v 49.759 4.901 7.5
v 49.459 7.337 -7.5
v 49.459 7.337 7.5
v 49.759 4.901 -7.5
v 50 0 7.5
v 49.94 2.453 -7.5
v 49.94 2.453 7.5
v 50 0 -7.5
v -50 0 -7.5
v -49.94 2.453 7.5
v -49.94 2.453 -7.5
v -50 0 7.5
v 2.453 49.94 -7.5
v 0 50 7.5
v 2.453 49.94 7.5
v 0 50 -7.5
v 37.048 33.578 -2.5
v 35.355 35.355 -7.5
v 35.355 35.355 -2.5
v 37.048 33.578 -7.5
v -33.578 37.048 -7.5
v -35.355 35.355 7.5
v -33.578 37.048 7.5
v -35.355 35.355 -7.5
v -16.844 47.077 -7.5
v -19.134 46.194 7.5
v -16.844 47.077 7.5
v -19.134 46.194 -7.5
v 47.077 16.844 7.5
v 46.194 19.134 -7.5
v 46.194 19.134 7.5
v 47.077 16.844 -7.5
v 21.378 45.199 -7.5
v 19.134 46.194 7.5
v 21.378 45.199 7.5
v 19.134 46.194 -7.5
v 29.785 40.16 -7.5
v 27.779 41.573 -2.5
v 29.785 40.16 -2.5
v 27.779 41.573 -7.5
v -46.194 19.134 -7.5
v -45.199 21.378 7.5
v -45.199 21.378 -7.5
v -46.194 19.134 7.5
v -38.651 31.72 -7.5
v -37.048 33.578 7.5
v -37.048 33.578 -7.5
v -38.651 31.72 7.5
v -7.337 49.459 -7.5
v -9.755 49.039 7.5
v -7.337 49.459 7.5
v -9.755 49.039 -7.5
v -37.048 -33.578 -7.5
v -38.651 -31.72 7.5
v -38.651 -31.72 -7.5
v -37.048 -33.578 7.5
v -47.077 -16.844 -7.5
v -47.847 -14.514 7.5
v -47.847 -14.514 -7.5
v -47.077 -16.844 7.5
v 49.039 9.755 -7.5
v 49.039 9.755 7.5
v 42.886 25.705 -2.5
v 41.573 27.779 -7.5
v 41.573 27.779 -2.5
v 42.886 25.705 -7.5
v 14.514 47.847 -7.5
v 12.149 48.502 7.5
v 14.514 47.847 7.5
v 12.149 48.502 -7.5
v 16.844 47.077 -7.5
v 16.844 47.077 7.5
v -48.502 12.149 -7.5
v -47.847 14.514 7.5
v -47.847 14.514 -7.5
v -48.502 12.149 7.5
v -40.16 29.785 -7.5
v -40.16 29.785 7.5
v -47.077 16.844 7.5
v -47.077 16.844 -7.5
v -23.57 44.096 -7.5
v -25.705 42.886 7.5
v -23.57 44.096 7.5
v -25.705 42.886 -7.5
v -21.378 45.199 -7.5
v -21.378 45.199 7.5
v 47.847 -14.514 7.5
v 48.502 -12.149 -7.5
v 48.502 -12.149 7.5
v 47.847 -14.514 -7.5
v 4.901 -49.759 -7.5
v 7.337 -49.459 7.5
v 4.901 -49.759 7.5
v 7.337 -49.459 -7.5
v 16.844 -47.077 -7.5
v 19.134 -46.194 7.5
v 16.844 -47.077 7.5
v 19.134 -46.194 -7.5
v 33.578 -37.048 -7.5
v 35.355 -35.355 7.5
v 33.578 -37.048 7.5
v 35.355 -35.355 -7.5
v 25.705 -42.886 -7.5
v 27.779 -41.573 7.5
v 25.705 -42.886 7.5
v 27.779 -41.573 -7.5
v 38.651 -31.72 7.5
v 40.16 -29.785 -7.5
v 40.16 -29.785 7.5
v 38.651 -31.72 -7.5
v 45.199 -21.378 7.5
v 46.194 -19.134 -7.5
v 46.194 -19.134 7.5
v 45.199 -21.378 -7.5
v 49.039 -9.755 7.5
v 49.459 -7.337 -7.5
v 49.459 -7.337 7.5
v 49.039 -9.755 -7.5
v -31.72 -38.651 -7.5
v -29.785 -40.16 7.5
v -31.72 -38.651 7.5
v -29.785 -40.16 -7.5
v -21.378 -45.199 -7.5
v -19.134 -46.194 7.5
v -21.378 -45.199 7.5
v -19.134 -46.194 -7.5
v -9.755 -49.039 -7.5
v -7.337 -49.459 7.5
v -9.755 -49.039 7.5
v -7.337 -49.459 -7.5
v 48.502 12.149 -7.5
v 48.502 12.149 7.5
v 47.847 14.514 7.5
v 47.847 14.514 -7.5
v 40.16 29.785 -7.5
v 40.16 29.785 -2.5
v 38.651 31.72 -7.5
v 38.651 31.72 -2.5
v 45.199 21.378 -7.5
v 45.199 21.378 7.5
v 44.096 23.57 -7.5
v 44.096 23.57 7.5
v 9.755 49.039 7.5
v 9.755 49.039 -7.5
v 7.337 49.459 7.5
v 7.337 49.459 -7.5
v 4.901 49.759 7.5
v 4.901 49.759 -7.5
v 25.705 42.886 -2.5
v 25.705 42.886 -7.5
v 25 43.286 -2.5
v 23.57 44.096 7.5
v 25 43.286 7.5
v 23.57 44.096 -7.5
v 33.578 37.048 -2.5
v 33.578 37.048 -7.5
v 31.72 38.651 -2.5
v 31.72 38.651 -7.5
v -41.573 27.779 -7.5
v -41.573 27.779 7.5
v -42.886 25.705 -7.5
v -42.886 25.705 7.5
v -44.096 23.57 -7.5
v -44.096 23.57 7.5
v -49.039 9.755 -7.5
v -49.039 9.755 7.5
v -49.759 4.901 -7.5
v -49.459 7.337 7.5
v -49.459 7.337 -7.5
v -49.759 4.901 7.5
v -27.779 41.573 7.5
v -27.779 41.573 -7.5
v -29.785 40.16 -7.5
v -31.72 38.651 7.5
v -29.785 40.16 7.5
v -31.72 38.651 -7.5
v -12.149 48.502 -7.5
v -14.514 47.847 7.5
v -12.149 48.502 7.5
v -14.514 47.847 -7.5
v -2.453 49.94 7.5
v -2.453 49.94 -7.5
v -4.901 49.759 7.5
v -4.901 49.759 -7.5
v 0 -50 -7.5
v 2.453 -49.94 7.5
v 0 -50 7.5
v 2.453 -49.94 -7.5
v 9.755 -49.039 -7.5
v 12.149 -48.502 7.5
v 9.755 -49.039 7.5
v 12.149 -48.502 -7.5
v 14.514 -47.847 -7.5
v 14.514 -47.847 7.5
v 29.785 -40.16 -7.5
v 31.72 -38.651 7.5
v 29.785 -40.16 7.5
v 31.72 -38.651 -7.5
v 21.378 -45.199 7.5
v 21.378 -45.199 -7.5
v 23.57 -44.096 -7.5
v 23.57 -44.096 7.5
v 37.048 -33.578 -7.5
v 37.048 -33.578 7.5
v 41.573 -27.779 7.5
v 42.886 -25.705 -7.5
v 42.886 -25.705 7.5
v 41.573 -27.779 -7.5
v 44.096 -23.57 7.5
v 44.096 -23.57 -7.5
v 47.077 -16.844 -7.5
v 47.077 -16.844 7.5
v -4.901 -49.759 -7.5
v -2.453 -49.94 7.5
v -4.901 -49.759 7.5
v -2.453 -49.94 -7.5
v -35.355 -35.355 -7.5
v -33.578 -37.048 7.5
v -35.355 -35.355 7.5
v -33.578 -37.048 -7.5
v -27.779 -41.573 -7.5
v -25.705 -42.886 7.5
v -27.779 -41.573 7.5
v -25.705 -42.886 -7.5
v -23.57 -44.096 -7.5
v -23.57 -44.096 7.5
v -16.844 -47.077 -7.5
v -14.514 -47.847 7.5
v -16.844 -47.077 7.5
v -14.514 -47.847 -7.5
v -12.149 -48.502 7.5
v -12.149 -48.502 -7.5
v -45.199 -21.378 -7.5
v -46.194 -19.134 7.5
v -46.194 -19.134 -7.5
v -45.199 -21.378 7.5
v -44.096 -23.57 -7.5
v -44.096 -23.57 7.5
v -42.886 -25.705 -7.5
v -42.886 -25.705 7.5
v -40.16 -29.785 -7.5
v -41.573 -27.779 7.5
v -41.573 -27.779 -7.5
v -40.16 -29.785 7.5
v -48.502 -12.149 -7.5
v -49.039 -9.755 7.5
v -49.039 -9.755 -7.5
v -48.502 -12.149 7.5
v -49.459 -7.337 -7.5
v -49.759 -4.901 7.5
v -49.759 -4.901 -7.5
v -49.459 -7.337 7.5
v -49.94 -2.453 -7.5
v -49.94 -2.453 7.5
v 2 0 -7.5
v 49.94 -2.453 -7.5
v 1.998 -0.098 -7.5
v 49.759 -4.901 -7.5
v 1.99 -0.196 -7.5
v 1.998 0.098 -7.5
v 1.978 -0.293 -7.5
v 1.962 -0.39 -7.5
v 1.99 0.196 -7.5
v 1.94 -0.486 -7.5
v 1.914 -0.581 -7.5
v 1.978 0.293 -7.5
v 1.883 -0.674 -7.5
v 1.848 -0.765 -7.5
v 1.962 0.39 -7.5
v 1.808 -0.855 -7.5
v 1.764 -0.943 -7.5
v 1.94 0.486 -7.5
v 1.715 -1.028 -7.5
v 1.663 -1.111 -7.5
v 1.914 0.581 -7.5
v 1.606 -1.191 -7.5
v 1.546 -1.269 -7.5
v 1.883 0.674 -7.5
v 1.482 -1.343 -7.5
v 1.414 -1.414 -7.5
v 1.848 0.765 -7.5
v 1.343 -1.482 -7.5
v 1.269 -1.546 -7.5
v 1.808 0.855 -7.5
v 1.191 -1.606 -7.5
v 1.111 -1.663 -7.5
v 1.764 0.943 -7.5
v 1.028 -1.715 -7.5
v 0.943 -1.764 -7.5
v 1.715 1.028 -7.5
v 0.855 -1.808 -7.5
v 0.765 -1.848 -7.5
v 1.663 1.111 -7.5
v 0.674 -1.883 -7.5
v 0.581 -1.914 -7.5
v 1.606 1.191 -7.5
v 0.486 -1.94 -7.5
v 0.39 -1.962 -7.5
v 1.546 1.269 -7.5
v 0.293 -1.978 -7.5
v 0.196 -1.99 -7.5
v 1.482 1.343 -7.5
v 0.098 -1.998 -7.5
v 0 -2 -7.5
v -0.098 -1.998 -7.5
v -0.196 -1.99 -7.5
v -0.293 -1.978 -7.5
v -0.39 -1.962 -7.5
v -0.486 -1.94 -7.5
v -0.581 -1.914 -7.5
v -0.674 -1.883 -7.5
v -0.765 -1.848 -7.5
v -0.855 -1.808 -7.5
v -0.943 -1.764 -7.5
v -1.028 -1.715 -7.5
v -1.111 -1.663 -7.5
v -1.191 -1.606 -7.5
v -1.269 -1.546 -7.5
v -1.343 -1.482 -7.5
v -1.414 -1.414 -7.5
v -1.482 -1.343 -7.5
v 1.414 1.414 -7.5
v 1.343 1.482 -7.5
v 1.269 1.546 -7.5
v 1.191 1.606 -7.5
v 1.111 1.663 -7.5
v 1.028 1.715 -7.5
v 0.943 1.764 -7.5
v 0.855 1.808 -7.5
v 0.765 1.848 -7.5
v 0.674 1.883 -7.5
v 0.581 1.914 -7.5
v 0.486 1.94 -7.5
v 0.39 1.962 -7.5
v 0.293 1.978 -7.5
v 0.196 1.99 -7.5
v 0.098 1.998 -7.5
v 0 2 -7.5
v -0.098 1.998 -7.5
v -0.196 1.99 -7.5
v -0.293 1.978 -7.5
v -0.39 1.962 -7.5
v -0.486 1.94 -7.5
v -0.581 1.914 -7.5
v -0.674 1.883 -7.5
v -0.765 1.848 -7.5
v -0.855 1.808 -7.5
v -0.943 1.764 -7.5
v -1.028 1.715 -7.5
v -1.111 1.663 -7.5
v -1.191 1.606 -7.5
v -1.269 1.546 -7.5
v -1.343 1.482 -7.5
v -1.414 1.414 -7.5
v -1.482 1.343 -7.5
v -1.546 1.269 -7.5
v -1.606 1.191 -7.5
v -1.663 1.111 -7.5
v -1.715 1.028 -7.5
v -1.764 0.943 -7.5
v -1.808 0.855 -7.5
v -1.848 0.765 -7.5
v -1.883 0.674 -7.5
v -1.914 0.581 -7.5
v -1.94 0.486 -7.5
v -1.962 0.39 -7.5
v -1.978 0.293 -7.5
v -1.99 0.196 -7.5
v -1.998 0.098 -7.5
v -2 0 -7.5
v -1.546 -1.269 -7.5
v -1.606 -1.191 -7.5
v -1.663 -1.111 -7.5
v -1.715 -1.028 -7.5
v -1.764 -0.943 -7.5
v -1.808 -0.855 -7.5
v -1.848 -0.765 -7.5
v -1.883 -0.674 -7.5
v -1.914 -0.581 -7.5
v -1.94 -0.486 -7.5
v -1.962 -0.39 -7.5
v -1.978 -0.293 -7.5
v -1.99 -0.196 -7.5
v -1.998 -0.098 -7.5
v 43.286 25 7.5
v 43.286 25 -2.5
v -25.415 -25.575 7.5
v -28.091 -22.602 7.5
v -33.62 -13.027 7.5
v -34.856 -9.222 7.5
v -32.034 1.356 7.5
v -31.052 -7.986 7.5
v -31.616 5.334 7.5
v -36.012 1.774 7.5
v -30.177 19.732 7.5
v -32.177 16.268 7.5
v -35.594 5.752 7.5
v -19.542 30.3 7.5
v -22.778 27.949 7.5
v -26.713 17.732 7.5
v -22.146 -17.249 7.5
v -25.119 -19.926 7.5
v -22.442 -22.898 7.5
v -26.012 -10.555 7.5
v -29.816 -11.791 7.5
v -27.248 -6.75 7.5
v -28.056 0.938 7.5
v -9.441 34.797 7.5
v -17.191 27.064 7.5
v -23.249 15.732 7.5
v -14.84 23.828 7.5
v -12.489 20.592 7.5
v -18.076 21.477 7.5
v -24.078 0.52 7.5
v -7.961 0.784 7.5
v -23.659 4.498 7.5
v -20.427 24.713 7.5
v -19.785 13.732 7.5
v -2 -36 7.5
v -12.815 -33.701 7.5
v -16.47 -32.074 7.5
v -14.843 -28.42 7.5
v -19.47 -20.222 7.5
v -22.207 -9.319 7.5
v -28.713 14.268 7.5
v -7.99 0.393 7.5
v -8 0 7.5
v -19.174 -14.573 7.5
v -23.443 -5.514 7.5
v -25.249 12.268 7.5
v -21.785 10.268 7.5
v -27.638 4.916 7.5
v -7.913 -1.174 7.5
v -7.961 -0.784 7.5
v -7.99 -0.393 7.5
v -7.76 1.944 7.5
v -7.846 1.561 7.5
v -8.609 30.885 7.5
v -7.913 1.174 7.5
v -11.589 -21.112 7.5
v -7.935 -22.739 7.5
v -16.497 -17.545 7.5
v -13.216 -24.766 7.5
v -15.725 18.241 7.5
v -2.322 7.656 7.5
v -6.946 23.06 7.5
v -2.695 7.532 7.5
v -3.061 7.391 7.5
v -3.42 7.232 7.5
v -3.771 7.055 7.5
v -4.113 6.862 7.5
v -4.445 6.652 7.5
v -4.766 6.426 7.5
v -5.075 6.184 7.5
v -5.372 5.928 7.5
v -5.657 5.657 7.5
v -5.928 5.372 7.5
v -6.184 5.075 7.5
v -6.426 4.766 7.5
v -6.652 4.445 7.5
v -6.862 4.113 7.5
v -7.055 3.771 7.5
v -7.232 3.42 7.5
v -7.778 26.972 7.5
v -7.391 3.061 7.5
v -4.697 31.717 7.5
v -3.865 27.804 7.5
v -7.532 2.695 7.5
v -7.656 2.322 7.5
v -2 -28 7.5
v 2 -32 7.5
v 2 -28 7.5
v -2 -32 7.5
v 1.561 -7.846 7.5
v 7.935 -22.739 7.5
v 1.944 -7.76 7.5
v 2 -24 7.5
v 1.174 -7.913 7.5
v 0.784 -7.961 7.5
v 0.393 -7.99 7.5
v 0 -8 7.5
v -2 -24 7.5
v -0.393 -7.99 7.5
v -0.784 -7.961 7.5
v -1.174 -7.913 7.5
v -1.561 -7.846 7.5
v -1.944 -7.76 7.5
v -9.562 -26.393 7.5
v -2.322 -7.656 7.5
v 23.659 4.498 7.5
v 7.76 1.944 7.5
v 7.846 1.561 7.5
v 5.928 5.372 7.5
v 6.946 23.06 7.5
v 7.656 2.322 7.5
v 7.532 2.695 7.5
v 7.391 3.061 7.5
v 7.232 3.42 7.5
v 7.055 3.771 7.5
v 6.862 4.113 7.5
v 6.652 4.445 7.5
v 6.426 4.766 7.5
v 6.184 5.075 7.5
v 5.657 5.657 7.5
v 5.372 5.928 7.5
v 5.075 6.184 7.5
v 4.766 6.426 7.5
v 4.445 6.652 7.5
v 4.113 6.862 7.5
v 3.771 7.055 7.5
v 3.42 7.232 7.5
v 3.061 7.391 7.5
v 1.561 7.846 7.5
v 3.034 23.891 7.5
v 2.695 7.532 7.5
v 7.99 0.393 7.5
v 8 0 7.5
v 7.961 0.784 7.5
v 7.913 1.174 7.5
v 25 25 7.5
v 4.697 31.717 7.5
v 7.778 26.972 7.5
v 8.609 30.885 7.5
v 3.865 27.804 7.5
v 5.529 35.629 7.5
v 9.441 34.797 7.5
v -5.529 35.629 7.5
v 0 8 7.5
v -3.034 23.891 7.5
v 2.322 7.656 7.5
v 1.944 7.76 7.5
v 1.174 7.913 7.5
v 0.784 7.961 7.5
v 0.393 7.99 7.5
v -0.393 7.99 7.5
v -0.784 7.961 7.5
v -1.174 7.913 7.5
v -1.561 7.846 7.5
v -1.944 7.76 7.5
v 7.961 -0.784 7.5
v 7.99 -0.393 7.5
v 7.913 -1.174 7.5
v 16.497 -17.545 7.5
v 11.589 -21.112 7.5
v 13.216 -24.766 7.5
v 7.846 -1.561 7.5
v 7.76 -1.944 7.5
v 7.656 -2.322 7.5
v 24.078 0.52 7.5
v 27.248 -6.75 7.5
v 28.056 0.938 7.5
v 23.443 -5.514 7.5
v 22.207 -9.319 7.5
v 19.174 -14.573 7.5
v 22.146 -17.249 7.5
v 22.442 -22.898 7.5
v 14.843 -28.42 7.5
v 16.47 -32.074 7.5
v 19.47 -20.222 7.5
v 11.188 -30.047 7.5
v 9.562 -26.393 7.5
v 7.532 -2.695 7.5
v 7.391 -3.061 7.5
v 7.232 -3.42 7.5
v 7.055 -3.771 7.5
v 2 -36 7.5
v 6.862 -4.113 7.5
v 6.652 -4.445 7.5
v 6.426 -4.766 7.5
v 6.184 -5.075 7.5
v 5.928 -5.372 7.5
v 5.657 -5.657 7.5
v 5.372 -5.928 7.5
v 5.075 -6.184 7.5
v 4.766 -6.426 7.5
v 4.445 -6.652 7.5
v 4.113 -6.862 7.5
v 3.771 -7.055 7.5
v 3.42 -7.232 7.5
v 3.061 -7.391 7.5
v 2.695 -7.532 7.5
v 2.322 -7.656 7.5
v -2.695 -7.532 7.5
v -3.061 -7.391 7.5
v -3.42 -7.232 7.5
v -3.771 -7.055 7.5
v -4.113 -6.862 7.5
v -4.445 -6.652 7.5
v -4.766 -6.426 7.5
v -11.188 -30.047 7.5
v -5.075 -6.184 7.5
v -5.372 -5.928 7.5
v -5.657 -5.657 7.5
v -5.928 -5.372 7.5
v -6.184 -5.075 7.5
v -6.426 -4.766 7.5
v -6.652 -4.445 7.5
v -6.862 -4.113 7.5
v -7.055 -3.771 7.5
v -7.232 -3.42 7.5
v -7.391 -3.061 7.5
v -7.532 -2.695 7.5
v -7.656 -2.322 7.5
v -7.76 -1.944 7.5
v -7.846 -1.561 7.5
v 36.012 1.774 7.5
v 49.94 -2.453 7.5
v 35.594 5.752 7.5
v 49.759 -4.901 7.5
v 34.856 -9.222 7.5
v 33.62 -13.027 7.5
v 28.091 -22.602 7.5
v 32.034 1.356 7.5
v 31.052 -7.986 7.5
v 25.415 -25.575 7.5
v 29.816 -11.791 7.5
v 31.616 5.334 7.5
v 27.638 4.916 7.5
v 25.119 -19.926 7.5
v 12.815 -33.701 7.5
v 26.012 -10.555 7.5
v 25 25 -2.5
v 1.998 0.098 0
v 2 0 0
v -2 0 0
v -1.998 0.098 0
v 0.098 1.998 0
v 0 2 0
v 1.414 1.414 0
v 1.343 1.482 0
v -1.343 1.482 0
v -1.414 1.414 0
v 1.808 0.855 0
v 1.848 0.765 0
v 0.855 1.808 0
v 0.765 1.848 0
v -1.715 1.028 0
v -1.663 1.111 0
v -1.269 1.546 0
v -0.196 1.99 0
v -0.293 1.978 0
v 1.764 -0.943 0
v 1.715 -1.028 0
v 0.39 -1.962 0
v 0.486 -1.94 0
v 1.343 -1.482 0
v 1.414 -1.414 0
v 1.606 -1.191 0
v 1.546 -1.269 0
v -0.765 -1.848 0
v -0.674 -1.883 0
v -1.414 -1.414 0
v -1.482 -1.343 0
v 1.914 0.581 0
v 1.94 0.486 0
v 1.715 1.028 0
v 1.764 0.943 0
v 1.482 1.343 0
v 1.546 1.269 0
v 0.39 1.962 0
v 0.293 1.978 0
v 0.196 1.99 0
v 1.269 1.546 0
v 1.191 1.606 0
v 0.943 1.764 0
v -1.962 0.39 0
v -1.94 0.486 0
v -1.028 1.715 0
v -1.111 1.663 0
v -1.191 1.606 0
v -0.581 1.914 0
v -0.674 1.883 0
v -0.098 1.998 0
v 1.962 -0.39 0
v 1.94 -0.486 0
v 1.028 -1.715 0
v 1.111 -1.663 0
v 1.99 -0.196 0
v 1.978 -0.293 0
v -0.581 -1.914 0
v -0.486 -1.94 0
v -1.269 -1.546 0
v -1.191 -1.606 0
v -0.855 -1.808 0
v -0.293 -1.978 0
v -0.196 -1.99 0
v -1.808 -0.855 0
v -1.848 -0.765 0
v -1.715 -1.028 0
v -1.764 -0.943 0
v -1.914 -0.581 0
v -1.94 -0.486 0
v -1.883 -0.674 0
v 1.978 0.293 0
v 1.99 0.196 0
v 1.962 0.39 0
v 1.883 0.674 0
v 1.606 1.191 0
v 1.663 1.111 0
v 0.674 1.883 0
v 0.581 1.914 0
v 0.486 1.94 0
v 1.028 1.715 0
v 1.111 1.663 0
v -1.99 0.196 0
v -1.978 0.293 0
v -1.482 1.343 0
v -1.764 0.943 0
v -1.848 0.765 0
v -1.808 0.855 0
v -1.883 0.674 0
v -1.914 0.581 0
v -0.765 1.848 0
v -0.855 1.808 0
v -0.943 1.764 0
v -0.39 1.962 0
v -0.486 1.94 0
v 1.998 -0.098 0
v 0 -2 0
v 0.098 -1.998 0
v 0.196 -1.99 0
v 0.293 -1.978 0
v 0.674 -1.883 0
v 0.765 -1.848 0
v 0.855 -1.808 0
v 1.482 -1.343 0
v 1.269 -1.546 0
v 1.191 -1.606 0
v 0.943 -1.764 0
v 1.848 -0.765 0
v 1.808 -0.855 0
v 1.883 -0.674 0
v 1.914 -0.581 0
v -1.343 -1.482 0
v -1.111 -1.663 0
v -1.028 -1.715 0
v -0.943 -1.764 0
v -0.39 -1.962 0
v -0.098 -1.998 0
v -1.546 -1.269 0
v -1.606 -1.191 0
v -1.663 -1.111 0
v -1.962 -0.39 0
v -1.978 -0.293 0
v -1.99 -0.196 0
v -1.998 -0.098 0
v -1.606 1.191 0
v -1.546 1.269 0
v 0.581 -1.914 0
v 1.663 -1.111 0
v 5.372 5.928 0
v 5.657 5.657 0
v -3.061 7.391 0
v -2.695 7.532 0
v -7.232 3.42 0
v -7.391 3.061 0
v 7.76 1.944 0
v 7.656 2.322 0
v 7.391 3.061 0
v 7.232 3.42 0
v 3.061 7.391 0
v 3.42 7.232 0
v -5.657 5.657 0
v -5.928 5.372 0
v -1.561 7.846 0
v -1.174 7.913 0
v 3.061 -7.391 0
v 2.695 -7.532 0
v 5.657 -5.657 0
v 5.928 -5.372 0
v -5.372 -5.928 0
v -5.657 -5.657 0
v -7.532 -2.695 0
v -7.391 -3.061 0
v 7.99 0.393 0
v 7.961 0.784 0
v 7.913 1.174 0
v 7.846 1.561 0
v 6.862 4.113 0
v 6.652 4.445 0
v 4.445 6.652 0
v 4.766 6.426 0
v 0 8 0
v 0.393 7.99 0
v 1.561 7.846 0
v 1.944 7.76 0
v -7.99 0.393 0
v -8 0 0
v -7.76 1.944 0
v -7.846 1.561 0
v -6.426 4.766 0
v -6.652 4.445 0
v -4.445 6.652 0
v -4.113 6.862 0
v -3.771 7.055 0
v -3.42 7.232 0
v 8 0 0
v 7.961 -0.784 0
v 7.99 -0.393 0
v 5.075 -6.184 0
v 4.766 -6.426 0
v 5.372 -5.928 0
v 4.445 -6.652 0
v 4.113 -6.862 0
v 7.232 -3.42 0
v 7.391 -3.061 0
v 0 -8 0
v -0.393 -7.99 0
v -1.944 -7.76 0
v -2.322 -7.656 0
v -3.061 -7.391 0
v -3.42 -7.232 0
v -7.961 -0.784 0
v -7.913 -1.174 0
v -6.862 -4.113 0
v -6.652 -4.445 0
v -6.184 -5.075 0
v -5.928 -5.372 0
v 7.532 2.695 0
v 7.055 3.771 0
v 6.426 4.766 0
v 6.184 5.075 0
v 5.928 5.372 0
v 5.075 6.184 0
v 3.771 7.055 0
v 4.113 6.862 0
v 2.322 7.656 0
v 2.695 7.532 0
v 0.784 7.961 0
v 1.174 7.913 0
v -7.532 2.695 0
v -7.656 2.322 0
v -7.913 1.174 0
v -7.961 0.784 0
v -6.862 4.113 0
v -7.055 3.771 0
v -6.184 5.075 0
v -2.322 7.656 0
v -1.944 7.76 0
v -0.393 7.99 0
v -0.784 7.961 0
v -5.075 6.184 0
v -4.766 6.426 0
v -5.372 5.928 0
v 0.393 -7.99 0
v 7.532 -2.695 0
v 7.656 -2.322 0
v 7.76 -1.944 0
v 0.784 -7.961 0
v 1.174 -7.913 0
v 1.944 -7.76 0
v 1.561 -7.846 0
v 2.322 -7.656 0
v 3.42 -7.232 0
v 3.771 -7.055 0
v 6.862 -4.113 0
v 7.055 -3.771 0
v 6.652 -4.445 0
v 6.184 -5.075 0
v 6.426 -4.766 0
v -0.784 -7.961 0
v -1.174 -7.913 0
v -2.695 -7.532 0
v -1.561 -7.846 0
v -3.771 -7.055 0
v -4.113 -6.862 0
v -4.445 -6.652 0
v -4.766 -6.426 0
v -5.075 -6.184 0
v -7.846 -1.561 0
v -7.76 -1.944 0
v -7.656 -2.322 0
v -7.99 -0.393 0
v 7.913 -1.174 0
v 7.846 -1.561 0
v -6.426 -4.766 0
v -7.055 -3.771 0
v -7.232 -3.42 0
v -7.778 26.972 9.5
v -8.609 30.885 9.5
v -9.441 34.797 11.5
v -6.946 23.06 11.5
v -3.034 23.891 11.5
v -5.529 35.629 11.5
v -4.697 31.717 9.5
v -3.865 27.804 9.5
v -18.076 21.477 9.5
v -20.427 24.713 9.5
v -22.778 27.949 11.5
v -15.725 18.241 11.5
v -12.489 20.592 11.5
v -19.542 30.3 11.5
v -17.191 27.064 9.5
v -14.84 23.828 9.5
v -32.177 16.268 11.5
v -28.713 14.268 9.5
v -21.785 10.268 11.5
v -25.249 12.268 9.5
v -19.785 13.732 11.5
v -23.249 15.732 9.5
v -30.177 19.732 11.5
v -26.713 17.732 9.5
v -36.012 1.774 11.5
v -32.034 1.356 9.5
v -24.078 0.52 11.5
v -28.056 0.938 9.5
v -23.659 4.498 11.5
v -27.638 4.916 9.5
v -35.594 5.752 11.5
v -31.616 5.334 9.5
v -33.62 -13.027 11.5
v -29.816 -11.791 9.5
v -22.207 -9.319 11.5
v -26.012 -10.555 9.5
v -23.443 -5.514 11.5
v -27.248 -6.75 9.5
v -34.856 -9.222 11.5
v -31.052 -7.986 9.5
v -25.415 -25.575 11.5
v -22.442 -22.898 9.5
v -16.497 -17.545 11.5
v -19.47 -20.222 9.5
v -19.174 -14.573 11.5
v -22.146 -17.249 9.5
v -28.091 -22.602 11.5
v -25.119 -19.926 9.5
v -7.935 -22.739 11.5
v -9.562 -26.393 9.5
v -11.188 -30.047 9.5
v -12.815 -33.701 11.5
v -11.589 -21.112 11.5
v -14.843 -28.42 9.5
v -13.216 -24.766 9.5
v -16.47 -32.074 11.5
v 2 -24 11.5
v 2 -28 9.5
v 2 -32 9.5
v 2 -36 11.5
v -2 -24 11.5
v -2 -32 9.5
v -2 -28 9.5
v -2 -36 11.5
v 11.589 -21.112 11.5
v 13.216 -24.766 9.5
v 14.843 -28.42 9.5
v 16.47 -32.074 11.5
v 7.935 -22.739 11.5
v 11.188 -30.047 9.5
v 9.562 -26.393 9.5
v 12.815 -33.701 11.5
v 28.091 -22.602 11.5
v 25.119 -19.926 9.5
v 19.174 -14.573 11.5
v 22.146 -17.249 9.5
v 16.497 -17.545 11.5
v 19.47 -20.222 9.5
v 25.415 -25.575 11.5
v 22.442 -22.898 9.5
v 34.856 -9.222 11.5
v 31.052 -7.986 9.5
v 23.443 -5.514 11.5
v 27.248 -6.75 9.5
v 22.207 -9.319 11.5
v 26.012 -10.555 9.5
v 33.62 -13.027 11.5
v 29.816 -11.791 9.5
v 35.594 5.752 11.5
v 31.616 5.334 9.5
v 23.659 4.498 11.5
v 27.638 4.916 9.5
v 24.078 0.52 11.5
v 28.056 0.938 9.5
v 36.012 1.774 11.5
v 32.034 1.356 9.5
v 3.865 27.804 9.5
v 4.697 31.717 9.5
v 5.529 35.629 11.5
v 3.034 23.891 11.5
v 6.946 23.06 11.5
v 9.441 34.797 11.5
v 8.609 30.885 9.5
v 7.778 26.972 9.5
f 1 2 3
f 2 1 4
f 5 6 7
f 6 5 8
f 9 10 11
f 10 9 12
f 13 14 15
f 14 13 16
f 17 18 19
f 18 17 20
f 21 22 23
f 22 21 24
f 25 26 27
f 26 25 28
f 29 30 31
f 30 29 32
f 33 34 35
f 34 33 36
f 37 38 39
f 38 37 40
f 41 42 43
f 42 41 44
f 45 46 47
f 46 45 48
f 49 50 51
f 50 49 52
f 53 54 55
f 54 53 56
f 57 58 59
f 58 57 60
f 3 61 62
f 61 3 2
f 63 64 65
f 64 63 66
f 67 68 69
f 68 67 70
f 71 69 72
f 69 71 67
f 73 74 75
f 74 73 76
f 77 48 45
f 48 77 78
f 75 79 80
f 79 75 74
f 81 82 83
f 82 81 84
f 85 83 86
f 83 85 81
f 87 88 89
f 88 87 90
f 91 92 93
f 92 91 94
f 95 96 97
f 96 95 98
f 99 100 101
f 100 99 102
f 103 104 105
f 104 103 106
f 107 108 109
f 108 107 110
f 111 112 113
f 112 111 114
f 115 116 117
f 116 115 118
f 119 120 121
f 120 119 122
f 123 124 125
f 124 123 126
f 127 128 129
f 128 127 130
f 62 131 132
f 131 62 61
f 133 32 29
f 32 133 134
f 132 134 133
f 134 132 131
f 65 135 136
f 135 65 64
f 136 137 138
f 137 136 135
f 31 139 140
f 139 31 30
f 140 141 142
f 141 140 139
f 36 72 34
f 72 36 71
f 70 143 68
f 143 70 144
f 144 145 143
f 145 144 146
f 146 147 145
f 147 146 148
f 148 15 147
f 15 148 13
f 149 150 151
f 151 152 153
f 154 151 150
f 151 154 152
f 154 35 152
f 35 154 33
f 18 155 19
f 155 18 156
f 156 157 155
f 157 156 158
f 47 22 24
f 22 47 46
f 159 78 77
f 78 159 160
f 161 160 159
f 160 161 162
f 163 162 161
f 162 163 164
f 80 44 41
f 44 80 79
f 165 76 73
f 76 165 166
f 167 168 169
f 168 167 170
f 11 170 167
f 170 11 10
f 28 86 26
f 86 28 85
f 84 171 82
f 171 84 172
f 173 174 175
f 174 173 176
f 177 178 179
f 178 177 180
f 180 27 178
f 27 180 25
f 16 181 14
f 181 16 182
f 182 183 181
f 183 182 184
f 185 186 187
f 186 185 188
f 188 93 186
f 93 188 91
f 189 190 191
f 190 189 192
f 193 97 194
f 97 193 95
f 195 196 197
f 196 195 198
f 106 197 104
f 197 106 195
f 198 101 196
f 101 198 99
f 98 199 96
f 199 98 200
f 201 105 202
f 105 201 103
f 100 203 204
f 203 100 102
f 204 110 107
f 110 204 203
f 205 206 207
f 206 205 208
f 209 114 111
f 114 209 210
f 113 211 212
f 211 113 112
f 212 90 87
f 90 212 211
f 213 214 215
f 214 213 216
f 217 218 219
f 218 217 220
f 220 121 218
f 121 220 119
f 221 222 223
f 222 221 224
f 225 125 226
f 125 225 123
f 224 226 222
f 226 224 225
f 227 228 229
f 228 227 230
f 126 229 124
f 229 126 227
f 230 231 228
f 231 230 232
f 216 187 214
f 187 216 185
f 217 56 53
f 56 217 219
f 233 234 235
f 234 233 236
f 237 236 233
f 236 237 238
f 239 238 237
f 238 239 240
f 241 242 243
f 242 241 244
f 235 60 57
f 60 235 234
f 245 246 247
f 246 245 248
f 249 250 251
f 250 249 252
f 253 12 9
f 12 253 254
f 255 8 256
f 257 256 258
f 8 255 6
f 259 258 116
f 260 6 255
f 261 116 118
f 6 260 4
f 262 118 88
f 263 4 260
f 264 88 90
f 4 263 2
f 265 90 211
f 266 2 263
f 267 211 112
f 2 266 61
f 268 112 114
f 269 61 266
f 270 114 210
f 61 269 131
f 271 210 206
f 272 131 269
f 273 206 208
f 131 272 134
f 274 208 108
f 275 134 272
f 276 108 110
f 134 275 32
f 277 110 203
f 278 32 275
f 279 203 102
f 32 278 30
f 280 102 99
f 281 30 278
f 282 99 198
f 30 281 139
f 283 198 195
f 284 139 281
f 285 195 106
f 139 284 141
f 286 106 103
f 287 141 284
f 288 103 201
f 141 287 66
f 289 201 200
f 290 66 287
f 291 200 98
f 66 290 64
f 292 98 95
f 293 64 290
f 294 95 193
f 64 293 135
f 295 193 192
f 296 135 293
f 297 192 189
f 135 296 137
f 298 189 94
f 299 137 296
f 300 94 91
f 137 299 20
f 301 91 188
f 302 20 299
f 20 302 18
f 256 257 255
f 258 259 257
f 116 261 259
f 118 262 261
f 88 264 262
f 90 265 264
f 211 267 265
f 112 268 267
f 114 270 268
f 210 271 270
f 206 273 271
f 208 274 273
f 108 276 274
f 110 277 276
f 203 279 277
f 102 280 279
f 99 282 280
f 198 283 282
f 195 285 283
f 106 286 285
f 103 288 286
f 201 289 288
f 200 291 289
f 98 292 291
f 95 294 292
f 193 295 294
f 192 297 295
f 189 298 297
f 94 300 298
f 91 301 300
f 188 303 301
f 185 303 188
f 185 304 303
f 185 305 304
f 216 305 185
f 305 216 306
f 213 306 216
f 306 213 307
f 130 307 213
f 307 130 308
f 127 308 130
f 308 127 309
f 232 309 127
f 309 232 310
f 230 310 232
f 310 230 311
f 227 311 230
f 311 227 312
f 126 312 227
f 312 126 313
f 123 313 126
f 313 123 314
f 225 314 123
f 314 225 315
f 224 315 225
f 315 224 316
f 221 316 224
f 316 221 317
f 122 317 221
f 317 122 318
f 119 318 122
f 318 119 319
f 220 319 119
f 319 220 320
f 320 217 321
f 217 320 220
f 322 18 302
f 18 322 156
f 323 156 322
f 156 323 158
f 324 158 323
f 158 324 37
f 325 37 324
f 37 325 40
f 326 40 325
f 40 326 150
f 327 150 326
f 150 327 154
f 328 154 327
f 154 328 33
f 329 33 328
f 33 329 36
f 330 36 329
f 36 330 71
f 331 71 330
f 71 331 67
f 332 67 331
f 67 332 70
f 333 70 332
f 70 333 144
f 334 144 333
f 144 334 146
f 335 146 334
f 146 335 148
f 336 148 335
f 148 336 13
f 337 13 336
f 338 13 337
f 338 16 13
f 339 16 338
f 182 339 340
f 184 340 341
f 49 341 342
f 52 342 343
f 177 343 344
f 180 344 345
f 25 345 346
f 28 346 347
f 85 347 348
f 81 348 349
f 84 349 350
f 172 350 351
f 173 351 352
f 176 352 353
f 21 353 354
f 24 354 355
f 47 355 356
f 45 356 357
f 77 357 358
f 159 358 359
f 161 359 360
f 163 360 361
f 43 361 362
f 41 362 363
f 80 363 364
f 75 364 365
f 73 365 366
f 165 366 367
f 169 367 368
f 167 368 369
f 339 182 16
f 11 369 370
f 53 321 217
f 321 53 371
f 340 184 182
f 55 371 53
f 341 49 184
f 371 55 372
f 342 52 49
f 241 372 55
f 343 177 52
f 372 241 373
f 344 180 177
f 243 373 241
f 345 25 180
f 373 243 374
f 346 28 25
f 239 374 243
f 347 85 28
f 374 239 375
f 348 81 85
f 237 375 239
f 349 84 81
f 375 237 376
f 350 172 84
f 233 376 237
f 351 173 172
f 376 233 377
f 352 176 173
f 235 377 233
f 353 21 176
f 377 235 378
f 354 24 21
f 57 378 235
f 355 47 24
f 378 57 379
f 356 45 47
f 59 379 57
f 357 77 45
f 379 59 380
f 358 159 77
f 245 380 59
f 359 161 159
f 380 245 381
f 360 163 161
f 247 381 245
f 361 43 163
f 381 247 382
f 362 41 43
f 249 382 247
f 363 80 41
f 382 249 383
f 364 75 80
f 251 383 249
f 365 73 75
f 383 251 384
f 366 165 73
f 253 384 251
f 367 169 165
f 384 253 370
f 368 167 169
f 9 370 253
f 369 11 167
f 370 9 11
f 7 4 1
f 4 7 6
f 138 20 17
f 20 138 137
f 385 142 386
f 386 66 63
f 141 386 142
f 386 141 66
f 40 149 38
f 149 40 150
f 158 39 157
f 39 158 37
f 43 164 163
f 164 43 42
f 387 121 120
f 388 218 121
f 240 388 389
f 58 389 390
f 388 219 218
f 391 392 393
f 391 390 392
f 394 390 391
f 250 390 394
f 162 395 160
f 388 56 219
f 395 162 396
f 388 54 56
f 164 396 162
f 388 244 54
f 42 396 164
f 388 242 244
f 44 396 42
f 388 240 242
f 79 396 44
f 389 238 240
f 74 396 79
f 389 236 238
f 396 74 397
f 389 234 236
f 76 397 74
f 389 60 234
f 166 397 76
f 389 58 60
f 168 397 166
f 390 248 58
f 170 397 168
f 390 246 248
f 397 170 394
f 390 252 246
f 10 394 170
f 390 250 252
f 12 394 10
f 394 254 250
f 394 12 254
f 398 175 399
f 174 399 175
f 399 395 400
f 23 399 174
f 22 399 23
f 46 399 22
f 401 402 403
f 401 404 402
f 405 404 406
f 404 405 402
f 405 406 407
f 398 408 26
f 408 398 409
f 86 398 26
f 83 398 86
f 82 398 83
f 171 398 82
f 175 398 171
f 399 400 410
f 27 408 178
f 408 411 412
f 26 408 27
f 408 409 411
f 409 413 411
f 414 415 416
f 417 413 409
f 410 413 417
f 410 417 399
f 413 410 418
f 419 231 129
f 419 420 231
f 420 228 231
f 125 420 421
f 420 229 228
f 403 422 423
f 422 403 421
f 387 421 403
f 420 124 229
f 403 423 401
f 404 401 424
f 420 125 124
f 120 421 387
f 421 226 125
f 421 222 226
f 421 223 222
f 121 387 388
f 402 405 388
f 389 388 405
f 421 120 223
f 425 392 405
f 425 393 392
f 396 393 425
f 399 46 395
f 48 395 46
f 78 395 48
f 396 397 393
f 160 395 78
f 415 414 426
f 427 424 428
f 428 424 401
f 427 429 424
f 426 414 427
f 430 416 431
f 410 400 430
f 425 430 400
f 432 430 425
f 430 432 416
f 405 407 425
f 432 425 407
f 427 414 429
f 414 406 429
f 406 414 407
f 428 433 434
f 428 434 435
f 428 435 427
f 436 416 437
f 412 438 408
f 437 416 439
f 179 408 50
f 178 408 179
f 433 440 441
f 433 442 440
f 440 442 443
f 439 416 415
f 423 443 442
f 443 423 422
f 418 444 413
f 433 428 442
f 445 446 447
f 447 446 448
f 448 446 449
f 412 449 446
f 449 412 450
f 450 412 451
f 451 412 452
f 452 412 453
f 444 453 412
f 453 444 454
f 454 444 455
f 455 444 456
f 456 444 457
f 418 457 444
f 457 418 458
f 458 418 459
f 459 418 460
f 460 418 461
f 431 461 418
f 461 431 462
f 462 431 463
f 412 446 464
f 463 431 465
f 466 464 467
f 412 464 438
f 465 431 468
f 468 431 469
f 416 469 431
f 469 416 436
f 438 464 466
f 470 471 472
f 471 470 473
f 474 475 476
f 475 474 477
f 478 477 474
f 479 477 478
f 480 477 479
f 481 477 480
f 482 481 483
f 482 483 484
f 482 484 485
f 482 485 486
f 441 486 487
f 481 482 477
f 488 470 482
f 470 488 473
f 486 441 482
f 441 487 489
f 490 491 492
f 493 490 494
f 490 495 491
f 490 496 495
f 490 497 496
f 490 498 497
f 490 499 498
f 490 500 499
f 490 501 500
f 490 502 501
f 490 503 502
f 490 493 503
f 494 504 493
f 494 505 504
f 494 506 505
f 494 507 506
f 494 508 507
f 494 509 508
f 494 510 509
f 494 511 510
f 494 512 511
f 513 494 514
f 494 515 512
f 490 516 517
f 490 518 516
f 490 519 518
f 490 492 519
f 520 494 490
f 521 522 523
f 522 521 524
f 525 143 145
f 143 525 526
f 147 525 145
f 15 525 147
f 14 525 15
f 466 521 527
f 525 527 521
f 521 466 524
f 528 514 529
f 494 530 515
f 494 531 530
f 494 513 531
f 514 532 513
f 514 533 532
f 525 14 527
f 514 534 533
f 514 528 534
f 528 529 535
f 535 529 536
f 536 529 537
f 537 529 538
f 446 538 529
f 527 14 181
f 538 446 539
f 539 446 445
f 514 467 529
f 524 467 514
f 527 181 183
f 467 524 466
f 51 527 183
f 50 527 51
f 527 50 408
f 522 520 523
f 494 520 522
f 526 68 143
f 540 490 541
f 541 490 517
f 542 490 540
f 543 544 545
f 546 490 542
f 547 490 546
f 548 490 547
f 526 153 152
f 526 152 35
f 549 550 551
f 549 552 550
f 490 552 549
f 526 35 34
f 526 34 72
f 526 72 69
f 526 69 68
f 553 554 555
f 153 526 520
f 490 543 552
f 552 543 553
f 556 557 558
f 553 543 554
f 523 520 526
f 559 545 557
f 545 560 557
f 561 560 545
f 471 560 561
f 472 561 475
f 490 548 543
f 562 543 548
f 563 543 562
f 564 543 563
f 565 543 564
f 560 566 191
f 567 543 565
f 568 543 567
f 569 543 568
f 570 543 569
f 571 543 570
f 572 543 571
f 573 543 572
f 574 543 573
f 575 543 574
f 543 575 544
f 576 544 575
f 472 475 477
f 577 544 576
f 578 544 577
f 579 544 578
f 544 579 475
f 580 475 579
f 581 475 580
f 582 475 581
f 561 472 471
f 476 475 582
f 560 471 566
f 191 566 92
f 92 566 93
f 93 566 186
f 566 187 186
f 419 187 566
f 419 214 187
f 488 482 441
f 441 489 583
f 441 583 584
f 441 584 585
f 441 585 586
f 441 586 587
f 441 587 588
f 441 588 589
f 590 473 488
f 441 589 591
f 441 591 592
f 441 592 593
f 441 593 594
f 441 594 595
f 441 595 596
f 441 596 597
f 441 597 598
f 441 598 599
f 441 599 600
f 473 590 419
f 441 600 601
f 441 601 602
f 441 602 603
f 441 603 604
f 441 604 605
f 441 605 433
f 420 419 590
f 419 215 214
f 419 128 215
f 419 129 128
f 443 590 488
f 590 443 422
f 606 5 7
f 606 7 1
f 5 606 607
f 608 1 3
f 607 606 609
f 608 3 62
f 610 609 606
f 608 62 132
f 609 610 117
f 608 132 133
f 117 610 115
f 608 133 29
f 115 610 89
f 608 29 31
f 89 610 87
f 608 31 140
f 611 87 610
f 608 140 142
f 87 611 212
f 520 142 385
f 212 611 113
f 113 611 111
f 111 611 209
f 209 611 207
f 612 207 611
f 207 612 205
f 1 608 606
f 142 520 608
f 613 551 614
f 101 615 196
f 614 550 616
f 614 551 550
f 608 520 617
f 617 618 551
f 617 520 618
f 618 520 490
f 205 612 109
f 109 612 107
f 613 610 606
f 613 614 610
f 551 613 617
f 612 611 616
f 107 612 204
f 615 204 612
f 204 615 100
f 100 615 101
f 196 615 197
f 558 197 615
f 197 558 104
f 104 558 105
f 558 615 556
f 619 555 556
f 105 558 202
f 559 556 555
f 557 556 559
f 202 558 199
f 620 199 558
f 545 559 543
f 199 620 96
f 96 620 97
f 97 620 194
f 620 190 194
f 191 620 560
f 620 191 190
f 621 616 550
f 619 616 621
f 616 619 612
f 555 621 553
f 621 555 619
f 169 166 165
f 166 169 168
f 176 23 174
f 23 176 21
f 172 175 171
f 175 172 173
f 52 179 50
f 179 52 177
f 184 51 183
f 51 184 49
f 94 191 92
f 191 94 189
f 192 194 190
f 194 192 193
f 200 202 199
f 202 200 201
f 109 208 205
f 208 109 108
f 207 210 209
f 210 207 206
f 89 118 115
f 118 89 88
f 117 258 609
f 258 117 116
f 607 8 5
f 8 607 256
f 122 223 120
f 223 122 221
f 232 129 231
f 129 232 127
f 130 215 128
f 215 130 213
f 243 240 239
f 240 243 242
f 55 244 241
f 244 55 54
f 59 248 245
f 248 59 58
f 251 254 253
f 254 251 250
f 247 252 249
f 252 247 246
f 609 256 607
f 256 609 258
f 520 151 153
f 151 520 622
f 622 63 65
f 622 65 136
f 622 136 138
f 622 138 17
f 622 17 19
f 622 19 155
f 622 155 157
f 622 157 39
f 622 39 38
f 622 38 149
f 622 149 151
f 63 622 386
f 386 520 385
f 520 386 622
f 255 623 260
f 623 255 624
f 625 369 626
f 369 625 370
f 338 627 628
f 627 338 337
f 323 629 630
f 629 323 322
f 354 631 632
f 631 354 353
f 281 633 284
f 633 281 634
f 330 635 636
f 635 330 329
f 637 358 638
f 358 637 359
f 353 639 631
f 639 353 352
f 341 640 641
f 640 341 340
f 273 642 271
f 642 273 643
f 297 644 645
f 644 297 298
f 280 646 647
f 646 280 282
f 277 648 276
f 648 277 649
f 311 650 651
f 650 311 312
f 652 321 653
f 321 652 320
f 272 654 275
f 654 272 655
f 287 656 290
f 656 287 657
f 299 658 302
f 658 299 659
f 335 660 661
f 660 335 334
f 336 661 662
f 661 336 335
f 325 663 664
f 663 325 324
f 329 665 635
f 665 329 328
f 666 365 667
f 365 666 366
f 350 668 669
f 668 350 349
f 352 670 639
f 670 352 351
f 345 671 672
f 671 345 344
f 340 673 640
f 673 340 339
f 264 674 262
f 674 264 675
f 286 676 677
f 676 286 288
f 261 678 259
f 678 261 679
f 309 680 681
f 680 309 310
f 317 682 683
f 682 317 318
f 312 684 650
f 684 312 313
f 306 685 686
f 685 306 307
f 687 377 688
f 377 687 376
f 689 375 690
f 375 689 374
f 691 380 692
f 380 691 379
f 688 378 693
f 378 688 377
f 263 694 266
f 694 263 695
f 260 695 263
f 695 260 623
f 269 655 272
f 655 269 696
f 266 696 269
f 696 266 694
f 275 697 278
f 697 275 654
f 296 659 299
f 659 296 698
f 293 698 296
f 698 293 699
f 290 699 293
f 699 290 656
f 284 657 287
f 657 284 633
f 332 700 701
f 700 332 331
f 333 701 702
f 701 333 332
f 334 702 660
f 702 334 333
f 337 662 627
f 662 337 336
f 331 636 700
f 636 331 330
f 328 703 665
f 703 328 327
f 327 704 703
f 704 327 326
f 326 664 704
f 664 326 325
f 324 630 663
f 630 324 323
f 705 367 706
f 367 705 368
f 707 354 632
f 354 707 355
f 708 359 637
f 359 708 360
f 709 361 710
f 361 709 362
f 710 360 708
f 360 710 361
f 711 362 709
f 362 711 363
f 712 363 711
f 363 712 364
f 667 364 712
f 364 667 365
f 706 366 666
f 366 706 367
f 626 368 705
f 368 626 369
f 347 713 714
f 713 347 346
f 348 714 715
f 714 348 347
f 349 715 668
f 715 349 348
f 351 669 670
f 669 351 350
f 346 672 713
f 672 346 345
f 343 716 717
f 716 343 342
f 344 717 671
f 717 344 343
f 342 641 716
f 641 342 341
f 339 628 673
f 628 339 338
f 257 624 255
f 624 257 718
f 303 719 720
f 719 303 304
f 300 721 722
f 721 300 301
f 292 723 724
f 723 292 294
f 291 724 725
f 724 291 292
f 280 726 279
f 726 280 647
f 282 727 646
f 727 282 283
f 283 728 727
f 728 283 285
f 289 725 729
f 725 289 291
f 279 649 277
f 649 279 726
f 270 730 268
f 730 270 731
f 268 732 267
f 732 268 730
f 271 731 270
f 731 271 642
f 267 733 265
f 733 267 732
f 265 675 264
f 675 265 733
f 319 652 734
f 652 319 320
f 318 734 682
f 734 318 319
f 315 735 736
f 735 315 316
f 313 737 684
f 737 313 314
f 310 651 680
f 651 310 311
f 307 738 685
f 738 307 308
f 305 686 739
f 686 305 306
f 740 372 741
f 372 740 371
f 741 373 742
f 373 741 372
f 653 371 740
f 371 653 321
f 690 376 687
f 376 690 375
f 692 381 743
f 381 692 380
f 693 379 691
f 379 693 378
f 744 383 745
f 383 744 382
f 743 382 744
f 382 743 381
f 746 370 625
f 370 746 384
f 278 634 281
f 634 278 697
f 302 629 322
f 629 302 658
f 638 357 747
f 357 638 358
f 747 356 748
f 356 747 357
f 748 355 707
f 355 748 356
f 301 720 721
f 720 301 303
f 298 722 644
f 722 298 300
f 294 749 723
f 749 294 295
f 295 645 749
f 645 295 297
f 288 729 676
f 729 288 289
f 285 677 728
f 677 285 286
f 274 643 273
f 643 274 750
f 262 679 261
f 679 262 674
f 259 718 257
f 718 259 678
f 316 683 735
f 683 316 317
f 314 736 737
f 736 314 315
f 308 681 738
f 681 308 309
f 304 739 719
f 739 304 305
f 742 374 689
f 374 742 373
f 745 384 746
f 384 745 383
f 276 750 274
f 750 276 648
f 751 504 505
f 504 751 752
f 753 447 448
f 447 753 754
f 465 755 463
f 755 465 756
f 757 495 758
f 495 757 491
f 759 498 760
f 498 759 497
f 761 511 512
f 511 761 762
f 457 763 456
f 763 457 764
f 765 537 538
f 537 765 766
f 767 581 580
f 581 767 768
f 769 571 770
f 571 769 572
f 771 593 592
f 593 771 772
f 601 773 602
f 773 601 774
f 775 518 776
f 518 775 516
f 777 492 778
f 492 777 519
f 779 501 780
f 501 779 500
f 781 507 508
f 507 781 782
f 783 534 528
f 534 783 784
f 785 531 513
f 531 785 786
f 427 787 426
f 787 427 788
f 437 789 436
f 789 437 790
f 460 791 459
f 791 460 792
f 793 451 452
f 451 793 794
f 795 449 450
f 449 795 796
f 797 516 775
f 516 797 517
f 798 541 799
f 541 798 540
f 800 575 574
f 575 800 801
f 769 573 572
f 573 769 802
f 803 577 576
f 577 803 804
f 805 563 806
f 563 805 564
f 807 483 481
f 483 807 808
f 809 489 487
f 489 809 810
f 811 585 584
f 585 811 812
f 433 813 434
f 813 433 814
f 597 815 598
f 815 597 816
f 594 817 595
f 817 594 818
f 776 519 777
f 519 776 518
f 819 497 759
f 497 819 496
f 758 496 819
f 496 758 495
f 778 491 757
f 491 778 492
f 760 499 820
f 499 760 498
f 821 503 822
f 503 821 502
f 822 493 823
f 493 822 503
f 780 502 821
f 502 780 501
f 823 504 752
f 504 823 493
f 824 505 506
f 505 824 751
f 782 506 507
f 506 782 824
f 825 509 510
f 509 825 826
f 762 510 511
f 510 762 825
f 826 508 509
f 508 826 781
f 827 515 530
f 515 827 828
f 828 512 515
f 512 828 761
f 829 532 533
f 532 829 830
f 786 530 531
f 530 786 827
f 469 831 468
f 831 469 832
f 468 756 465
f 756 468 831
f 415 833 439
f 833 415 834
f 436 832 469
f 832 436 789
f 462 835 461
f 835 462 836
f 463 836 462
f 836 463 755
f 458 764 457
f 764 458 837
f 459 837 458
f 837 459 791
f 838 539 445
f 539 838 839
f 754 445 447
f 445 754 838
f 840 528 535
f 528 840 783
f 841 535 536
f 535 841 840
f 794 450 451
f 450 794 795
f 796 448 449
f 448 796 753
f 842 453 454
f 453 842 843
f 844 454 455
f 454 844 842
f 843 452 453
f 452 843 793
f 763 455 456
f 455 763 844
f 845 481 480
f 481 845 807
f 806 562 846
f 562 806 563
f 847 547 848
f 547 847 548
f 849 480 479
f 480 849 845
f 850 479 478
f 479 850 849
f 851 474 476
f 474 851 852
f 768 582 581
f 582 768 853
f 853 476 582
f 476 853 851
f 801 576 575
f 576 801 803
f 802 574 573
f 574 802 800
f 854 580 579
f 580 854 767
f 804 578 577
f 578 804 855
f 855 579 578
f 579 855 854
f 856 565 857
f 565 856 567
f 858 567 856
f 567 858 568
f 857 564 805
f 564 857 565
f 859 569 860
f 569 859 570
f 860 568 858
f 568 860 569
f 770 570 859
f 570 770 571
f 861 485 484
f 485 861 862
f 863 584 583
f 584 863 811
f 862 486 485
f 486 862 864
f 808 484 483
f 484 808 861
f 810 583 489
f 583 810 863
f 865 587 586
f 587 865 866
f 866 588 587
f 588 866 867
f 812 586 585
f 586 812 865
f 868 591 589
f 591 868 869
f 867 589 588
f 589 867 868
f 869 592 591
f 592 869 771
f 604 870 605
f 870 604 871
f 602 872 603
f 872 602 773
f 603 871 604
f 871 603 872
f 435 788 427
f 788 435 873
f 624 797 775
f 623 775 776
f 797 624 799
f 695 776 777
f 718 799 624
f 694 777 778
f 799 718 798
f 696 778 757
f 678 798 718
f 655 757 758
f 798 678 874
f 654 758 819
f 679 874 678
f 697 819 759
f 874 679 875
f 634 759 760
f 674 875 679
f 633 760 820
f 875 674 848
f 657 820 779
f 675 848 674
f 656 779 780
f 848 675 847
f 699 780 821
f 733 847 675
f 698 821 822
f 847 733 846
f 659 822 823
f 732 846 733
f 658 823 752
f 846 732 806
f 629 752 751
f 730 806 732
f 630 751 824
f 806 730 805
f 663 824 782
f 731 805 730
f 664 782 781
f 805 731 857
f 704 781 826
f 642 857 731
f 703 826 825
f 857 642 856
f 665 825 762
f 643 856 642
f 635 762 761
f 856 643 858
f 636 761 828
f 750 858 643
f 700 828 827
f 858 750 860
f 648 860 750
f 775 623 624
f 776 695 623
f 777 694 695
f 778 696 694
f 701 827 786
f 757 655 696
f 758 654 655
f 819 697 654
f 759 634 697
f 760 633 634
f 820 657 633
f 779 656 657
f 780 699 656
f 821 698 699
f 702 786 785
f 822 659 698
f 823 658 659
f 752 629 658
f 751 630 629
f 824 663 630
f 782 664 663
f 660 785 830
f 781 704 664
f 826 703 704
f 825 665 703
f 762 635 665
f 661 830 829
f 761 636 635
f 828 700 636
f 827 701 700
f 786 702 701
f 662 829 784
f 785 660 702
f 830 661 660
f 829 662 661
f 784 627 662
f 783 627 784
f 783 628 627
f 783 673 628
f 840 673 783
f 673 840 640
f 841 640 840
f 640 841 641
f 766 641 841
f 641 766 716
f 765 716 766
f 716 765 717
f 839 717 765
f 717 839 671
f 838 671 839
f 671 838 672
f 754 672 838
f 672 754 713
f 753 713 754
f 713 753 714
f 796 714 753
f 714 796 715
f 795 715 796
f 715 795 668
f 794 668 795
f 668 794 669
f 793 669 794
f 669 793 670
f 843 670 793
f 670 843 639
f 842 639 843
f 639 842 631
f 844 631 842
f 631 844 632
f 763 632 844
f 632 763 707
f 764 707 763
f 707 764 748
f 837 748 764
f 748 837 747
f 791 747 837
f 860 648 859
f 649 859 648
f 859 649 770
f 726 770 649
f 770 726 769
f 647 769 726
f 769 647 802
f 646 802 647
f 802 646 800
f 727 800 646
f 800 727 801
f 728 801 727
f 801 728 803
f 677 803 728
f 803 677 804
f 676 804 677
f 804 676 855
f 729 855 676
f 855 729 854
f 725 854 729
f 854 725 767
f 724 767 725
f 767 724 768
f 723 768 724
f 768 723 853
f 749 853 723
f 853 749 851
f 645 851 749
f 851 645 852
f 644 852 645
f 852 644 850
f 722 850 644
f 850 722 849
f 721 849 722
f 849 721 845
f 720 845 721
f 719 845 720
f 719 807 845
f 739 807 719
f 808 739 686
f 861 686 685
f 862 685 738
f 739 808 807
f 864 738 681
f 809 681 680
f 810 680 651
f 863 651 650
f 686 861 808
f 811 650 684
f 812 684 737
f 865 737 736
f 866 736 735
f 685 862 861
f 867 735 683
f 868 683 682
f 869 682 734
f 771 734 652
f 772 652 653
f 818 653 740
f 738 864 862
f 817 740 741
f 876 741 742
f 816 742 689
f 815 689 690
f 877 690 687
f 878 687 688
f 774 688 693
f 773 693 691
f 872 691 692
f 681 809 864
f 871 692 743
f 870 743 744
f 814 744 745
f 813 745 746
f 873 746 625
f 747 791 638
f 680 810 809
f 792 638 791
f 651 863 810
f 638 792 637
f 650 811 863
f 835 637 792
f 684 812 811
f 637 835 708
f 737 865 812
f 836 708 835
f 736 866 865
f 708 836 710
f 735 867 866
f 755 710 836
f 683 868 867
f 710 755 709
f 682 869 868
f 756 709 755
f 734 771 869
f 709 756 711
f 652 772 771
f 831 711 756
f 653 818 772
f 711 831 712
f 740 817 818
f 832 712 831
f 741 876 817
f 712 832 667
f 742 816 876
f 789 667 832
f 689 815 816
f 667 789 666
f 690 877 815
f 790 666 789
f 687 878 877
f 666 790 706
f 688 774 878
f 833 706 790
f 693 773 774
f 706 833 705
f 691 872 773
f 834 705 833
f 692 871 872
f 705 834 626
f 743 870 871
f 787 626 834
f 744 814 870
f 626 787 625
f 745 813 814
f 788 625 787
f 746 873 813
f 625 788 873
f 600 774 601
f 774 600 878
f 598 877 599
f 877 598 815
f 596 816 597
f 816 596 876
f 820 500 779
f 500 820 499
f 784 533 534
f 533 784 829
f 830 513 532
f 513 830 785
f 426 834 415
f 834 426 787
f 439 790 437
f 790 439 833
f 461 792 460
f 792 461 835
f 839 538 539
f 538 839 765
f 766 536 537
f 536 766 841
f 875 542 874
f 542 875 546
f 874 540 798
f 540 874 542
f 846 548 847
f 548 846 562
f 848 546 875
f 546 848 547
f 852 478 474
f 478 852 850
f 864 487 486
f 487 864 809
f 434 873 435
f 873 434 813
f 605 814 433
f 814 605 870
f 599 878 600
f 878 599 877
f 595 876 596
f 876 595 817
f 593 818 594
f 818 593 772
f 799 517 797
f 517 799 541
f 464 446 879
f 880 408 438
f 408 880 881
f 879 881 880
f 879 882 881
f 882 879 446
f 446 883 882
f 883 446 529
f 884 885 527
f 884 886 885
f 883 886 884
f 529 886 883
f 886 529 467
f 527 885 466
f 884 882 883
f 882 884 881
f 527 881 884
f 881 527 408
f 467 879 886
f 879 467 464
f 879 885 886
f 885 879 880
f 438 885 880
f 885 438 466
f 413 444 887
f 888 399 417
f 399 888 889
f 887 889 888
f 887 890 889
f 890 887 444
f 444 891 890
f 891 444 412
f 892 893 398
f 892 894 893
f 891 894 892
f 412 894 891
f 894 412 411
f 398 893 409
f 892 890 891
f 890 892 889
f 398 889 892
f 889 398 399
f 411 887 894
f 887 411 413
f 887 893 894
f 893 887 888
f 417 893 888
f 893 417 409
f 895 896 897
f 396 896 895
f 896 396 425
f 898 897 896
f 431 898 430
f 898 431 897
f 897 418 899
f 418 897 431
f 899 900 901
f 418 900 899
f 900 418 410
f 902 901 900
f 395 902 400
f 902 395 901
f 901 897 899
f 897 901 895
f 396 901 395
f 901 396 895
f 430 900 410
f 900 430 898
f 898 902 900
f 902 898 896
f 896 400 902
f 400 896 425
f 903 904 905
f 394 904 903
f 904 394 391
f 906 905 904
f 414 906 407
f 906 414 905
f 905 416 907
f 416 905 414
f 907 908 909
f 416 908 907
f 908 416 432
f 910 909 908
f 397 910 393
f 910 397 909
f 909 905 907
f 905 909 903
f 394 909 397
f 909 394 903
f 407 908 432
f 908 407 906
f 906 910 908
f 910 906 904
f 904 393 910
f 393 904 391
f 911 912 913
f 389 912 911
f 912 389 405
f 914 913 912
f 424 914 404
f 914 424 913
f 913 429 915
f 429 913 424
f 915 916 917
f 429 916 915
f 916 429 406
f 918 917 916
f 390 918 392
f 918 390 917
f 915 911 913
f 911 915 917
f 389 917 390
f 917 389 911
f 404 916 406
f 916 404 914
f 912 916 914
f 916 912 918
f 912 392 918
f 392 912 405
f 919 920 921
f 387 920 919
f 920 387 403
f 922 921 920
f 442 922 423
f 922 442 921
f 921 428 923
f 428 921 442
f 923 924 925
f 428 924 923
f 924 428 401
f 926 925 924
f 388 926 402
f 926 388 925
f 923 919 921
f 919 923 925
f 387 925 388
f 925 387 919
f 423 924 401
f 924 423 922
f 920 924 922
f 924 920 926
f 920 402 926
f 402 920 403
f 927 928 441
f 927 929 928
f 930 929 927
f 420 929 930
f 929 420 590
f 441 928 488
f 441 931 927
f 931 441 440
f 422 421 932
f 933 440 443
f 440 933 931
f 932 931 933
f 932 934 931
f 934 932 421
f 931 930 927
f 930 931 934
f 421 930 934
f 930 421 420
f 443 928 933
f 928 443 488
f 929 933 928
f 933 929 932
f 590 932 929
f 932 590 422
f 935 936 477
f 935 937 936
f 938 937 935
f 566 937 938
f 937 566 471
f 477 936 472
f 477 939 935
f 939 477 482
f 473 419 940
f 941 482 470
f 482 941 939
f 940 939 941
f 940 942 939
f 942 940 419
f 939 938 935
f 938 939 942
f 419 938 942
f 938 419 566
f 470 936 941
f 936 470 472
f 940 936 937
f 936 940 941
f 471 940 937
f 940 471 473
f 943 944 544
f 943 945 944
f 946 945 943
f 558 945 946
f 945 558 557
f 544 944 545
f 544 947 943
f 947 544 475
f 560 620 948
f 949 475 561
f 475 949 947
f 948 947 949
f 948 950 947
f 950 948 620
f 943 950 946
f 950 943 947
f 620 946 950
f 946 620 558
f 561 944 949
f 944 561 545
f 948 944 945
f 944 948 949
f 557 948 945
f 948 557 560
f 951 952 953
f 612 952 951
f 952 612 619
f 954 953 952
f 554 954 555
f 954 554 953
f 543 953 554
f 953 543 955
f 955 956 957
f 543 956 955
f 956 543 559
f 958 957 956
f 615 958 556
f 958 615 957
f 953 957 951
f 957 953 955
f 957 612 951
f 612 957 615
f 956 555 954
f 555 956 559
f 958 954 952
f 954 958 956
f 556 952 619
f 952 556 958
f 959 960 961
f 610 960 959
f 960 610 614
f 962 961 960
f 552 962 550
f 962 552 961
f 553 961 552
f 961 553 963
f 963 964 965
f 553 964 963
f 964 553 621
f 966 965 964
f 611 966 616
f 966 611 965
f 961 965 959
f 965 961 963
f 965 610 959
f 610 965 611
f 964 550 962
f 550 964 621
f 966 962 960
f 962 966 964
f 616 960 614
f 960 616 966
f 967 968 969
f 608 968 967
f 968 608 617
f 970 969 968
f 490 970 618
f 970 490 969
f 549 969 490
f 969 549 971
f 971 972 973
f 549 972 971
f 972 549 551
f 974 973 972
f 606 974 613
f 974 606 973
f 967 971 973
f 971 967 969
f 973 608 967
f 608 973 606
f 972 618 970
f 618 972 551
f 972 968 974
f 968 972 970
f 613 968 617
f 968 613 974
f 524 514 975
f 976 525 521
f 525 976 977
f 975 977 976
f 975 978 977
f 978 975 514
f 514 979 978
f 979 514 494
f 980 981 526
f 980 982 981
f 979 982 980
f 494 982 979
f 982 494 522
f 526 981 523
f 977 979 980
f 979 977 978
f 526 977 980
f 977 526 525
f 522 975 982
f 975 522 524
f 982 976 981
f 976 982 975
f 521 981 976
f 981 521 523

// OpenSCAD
holder_diameter = 100;
$fn = 128;

difference() {

	translate([0,0,0]) cylinder(d=holder_diameter,h=15,center = true);
	translate([100,100,22.5]) cube([150,150,50],center=true);
	cylinder(d=4,h=20,center = true);
	translate([0,0,7.5]) cylinder(d=16,h=15,center = true);
}




    	for (i = [12,36,60,84,108,132,156,180,204,228,252,276,348]) {
    		rotate([0, 0, i]) 
    			translate([0, holder_diameter/2 - 20, 8.5])
					rotate([90, 0, 0]) 
						difference() {
							cube([4,6,12],center = true);
							cube([5,2,4],center = true);
						}
    	}
